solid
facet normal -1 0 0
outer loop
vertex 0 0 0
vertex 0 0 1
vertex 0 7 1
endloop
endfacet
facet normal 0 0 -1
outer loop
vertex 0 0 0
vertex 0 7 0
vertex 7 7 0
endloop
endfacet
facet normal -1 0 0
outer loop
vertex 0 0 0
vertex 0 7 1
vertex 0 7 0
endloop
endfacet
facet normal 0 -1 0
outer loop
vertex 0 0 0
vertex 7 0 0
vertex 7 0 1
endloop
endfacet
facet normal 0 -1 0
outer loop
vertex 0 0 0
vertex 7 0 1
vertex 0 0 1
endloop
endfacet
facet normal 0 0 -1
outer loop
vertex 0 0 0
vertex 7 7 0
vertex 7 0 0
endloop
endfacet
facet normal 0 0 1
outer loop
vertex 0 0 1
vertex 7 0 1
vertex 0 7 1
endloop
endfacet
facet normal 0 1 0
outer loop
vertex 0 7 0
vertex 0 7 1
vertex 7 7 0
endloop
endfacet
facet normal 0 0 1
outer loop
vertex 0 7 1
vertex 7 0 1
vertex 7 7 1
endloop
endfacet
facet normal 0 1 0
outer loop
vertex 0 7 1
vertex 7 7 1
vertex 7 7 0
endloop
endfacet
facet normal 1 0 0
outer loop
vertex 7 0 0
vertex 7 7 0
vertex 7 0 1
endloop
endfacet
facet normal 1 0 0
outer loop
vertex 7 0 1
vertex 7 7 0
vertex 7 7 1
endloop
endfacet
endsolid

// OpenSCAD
/* Warning, this is a very basic generator with a lot of approximation 
input data : [TQFP, Y4X, 7x7x1.0mm, 48, , B, C04-00183B]
generated by com.zoubworld.electronics.cad.model3d.Basic
Date : Sun Feb 15 10:50:48 CET 2026
*/

//body
color("black")
translate([0,0,0])
cube([7.0,7.0,1.0], center=false);
